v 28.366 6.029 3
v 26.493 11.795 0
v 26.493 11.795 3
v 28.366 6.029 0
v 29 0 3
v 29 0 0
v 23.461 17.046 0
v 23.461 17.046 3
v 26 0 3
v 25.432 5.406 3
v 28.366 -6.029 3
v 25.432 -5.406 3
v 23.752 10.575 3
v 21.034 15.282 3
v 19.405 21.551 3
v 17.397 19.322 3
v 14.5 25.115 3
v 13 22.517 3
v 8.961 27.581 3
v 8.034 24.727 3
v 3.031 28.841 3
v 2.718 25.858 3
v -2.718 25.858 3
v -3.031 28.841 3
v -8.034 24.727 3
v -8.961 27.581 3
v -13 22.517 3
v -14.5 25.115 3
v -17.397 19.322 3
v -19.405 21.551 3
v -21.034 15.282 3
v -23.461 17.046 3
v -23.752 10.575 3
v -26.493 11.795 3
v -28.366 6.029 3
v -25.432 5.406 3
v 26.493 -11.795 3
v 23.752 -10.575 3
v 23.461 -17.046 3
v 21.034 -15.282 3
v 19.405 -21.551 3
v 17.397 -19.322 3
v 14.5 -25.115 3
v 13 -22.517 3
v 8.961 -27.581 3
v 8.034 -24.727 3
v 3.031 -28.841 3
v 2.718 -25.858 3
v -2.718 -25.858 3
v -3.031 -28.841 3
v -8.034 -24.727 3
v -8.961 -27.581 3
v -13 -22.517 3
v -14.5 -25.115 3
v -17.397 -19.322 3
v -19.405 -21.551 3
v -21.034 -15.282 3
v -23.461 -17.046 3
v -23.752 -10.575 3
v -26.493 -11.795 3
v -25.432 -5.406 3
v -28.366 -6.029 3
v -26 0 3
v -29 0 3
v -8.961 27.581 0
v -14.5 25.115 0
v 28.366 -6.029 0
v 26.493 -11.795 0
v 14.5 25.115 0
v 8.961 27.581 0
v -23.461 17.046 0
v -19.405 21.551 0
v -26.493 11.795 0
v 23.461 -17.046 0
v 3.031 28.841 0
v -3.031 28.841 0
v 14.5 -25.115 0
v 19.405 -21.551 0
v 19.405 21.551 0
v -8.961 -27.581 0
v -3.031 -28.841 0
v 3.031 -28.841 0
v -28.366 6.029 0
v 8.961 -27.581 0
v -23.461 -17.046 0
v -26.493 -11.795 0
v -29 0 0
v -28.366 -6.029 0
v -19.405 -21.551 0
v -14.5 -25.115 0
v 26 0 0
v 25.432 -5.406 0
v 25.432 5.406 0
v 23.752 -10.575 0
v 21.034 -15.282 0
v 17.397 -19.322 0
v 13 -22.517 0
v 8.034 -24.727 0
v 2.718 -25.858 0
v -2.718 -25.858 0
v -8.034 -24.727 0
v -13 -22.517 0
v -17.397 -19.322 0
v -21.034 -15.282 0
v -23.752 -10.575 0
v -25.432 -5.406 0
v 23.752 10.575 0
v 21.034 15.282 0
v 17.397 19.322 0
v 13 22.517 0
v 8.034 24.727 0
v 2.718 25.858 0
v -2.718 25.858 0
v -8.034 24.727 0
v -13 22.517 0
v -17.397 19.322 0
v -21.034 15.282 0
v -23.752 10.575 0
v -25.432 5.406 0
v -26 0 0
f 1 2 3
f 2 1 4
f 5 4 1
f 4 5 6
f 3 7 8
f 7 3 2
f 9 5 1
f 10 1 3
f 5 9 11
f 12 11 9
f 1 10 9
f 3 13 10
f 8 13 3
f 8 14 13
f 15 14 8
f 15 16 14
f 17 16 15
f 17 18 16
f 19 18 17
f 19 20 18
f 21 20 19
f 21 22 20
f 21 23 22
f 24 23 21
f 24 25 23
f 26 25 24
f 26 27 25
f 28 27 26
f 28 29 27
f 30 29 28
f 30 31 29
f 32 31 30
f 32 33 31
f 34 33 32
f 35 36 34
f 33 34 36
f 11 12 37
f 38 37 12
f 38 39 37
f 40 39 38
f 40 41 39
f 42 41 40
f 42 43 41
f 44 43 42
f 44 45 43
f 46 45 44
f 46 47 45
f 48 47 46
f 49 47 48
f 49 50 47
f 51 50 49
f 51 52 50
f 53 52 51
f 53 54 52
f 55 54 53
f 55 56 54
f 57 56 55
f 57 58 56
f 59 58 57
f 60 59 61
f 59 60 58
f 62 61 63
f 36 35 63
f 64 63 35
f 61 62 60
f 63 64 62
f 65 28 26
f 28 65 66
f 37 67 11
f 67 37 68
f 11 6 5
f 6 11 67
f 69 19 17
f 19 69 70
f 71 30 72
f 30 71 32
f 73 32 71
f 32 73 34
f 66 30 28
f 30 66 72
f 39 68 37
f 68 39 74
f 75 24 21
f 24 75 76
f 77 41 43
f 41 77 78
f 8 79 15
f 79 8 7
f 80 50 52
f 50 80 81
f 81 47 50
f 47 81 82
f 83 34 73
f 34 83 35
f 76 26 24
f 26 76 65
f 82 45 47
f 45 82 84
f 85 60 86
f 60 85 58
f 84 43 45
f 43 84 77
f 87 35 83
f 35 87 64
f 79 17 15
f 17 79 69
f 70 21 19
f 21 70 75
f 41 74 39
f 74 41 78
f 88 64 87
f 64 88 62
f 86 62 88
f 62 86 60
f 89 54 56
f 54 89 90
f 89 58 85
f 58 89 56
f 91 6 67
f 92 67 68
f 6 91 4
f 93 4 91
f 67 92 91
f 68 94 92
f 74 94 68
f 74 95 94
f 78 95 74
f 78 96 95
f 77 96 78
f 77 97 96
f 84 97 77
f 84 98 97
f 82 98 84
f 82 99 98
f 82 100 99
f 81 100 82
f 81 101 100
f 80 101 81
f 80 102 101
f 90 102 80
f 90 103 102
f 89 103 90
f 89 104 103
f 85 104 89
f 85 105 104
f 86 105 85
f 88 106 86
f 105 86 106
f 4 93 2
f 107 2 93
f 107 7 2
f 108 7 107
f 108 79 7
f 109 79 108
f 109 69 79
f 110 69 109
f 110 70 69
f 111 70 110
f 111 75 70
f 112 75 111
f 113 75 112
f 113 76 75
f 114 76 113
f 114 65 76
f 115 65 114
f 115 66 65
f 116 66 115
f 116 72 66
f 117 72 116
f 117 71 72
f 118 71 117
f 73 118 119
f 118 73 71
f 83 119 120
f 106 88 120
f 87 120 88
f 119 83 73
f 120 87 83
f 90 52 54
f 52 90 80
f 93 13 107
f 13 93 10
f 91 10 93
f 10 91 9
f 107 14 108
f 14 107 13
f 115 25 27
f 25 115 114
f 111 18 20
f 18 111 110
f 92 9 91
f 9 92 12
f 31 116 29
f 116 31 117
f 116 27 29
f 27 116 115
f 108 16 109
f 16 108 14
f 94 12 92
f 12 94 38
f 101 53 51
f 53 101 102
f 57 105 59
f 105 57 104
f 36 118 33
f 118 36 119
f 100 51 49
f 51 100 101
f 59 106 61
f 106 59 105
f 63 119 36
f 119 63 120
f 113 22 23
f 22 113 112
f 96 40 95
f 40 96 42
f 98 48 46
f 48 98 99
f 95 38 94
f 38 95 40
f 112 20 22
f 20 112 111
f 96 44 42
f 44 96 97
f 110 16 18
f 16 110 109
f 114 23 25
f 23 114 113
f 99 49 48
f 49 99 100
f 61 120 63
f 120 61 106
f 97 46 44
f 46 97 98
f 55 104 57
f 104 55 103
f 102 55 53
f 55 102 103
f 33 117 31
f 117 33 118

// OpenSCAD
// file: dims.scad
sharps_container_diameter = 51.5 + 0.5;
sharps_container_height = 157;
bandaid_length = 90;
bandaid_width = 35.5;
swab_height = 50;
swab_width = 45;
syringe_length_soft = 137;
syringe_length_hard = 101;
syringe_width_soft = 39;
syringe_width_hard = 10;
needle_length_soft = 92;
needle_width_soft = 20;
needle_length_hard = 60.25;
needle_width_hard = 8.3;
vial_length = 54.3;
vial_diameter = 21.7 + 0.5;

padding = 1;
extra_padding = 8*padding;
thickness = 3;

vial_slot_depth = vial_length + extra_padding;
vial_slot_width = swab_width + 2*extra_padding;

vs_pad = 3;
vial_vslot_width = vial_diameter * 2 + thickness + 2 * vs_pad;
vial_vslot_height = vial_diameter + thickness + vs_pad/2;
// main file
include <dims.scad>
difference(){
    cylinder(3, sharps_container_diameter/2 + thickness, sharps_container_diameter/2 + thickness);
    translate([0,0,-10])cylinder(230, sharps_container_diameter/2, sharps_container_diameter/2);   
};
